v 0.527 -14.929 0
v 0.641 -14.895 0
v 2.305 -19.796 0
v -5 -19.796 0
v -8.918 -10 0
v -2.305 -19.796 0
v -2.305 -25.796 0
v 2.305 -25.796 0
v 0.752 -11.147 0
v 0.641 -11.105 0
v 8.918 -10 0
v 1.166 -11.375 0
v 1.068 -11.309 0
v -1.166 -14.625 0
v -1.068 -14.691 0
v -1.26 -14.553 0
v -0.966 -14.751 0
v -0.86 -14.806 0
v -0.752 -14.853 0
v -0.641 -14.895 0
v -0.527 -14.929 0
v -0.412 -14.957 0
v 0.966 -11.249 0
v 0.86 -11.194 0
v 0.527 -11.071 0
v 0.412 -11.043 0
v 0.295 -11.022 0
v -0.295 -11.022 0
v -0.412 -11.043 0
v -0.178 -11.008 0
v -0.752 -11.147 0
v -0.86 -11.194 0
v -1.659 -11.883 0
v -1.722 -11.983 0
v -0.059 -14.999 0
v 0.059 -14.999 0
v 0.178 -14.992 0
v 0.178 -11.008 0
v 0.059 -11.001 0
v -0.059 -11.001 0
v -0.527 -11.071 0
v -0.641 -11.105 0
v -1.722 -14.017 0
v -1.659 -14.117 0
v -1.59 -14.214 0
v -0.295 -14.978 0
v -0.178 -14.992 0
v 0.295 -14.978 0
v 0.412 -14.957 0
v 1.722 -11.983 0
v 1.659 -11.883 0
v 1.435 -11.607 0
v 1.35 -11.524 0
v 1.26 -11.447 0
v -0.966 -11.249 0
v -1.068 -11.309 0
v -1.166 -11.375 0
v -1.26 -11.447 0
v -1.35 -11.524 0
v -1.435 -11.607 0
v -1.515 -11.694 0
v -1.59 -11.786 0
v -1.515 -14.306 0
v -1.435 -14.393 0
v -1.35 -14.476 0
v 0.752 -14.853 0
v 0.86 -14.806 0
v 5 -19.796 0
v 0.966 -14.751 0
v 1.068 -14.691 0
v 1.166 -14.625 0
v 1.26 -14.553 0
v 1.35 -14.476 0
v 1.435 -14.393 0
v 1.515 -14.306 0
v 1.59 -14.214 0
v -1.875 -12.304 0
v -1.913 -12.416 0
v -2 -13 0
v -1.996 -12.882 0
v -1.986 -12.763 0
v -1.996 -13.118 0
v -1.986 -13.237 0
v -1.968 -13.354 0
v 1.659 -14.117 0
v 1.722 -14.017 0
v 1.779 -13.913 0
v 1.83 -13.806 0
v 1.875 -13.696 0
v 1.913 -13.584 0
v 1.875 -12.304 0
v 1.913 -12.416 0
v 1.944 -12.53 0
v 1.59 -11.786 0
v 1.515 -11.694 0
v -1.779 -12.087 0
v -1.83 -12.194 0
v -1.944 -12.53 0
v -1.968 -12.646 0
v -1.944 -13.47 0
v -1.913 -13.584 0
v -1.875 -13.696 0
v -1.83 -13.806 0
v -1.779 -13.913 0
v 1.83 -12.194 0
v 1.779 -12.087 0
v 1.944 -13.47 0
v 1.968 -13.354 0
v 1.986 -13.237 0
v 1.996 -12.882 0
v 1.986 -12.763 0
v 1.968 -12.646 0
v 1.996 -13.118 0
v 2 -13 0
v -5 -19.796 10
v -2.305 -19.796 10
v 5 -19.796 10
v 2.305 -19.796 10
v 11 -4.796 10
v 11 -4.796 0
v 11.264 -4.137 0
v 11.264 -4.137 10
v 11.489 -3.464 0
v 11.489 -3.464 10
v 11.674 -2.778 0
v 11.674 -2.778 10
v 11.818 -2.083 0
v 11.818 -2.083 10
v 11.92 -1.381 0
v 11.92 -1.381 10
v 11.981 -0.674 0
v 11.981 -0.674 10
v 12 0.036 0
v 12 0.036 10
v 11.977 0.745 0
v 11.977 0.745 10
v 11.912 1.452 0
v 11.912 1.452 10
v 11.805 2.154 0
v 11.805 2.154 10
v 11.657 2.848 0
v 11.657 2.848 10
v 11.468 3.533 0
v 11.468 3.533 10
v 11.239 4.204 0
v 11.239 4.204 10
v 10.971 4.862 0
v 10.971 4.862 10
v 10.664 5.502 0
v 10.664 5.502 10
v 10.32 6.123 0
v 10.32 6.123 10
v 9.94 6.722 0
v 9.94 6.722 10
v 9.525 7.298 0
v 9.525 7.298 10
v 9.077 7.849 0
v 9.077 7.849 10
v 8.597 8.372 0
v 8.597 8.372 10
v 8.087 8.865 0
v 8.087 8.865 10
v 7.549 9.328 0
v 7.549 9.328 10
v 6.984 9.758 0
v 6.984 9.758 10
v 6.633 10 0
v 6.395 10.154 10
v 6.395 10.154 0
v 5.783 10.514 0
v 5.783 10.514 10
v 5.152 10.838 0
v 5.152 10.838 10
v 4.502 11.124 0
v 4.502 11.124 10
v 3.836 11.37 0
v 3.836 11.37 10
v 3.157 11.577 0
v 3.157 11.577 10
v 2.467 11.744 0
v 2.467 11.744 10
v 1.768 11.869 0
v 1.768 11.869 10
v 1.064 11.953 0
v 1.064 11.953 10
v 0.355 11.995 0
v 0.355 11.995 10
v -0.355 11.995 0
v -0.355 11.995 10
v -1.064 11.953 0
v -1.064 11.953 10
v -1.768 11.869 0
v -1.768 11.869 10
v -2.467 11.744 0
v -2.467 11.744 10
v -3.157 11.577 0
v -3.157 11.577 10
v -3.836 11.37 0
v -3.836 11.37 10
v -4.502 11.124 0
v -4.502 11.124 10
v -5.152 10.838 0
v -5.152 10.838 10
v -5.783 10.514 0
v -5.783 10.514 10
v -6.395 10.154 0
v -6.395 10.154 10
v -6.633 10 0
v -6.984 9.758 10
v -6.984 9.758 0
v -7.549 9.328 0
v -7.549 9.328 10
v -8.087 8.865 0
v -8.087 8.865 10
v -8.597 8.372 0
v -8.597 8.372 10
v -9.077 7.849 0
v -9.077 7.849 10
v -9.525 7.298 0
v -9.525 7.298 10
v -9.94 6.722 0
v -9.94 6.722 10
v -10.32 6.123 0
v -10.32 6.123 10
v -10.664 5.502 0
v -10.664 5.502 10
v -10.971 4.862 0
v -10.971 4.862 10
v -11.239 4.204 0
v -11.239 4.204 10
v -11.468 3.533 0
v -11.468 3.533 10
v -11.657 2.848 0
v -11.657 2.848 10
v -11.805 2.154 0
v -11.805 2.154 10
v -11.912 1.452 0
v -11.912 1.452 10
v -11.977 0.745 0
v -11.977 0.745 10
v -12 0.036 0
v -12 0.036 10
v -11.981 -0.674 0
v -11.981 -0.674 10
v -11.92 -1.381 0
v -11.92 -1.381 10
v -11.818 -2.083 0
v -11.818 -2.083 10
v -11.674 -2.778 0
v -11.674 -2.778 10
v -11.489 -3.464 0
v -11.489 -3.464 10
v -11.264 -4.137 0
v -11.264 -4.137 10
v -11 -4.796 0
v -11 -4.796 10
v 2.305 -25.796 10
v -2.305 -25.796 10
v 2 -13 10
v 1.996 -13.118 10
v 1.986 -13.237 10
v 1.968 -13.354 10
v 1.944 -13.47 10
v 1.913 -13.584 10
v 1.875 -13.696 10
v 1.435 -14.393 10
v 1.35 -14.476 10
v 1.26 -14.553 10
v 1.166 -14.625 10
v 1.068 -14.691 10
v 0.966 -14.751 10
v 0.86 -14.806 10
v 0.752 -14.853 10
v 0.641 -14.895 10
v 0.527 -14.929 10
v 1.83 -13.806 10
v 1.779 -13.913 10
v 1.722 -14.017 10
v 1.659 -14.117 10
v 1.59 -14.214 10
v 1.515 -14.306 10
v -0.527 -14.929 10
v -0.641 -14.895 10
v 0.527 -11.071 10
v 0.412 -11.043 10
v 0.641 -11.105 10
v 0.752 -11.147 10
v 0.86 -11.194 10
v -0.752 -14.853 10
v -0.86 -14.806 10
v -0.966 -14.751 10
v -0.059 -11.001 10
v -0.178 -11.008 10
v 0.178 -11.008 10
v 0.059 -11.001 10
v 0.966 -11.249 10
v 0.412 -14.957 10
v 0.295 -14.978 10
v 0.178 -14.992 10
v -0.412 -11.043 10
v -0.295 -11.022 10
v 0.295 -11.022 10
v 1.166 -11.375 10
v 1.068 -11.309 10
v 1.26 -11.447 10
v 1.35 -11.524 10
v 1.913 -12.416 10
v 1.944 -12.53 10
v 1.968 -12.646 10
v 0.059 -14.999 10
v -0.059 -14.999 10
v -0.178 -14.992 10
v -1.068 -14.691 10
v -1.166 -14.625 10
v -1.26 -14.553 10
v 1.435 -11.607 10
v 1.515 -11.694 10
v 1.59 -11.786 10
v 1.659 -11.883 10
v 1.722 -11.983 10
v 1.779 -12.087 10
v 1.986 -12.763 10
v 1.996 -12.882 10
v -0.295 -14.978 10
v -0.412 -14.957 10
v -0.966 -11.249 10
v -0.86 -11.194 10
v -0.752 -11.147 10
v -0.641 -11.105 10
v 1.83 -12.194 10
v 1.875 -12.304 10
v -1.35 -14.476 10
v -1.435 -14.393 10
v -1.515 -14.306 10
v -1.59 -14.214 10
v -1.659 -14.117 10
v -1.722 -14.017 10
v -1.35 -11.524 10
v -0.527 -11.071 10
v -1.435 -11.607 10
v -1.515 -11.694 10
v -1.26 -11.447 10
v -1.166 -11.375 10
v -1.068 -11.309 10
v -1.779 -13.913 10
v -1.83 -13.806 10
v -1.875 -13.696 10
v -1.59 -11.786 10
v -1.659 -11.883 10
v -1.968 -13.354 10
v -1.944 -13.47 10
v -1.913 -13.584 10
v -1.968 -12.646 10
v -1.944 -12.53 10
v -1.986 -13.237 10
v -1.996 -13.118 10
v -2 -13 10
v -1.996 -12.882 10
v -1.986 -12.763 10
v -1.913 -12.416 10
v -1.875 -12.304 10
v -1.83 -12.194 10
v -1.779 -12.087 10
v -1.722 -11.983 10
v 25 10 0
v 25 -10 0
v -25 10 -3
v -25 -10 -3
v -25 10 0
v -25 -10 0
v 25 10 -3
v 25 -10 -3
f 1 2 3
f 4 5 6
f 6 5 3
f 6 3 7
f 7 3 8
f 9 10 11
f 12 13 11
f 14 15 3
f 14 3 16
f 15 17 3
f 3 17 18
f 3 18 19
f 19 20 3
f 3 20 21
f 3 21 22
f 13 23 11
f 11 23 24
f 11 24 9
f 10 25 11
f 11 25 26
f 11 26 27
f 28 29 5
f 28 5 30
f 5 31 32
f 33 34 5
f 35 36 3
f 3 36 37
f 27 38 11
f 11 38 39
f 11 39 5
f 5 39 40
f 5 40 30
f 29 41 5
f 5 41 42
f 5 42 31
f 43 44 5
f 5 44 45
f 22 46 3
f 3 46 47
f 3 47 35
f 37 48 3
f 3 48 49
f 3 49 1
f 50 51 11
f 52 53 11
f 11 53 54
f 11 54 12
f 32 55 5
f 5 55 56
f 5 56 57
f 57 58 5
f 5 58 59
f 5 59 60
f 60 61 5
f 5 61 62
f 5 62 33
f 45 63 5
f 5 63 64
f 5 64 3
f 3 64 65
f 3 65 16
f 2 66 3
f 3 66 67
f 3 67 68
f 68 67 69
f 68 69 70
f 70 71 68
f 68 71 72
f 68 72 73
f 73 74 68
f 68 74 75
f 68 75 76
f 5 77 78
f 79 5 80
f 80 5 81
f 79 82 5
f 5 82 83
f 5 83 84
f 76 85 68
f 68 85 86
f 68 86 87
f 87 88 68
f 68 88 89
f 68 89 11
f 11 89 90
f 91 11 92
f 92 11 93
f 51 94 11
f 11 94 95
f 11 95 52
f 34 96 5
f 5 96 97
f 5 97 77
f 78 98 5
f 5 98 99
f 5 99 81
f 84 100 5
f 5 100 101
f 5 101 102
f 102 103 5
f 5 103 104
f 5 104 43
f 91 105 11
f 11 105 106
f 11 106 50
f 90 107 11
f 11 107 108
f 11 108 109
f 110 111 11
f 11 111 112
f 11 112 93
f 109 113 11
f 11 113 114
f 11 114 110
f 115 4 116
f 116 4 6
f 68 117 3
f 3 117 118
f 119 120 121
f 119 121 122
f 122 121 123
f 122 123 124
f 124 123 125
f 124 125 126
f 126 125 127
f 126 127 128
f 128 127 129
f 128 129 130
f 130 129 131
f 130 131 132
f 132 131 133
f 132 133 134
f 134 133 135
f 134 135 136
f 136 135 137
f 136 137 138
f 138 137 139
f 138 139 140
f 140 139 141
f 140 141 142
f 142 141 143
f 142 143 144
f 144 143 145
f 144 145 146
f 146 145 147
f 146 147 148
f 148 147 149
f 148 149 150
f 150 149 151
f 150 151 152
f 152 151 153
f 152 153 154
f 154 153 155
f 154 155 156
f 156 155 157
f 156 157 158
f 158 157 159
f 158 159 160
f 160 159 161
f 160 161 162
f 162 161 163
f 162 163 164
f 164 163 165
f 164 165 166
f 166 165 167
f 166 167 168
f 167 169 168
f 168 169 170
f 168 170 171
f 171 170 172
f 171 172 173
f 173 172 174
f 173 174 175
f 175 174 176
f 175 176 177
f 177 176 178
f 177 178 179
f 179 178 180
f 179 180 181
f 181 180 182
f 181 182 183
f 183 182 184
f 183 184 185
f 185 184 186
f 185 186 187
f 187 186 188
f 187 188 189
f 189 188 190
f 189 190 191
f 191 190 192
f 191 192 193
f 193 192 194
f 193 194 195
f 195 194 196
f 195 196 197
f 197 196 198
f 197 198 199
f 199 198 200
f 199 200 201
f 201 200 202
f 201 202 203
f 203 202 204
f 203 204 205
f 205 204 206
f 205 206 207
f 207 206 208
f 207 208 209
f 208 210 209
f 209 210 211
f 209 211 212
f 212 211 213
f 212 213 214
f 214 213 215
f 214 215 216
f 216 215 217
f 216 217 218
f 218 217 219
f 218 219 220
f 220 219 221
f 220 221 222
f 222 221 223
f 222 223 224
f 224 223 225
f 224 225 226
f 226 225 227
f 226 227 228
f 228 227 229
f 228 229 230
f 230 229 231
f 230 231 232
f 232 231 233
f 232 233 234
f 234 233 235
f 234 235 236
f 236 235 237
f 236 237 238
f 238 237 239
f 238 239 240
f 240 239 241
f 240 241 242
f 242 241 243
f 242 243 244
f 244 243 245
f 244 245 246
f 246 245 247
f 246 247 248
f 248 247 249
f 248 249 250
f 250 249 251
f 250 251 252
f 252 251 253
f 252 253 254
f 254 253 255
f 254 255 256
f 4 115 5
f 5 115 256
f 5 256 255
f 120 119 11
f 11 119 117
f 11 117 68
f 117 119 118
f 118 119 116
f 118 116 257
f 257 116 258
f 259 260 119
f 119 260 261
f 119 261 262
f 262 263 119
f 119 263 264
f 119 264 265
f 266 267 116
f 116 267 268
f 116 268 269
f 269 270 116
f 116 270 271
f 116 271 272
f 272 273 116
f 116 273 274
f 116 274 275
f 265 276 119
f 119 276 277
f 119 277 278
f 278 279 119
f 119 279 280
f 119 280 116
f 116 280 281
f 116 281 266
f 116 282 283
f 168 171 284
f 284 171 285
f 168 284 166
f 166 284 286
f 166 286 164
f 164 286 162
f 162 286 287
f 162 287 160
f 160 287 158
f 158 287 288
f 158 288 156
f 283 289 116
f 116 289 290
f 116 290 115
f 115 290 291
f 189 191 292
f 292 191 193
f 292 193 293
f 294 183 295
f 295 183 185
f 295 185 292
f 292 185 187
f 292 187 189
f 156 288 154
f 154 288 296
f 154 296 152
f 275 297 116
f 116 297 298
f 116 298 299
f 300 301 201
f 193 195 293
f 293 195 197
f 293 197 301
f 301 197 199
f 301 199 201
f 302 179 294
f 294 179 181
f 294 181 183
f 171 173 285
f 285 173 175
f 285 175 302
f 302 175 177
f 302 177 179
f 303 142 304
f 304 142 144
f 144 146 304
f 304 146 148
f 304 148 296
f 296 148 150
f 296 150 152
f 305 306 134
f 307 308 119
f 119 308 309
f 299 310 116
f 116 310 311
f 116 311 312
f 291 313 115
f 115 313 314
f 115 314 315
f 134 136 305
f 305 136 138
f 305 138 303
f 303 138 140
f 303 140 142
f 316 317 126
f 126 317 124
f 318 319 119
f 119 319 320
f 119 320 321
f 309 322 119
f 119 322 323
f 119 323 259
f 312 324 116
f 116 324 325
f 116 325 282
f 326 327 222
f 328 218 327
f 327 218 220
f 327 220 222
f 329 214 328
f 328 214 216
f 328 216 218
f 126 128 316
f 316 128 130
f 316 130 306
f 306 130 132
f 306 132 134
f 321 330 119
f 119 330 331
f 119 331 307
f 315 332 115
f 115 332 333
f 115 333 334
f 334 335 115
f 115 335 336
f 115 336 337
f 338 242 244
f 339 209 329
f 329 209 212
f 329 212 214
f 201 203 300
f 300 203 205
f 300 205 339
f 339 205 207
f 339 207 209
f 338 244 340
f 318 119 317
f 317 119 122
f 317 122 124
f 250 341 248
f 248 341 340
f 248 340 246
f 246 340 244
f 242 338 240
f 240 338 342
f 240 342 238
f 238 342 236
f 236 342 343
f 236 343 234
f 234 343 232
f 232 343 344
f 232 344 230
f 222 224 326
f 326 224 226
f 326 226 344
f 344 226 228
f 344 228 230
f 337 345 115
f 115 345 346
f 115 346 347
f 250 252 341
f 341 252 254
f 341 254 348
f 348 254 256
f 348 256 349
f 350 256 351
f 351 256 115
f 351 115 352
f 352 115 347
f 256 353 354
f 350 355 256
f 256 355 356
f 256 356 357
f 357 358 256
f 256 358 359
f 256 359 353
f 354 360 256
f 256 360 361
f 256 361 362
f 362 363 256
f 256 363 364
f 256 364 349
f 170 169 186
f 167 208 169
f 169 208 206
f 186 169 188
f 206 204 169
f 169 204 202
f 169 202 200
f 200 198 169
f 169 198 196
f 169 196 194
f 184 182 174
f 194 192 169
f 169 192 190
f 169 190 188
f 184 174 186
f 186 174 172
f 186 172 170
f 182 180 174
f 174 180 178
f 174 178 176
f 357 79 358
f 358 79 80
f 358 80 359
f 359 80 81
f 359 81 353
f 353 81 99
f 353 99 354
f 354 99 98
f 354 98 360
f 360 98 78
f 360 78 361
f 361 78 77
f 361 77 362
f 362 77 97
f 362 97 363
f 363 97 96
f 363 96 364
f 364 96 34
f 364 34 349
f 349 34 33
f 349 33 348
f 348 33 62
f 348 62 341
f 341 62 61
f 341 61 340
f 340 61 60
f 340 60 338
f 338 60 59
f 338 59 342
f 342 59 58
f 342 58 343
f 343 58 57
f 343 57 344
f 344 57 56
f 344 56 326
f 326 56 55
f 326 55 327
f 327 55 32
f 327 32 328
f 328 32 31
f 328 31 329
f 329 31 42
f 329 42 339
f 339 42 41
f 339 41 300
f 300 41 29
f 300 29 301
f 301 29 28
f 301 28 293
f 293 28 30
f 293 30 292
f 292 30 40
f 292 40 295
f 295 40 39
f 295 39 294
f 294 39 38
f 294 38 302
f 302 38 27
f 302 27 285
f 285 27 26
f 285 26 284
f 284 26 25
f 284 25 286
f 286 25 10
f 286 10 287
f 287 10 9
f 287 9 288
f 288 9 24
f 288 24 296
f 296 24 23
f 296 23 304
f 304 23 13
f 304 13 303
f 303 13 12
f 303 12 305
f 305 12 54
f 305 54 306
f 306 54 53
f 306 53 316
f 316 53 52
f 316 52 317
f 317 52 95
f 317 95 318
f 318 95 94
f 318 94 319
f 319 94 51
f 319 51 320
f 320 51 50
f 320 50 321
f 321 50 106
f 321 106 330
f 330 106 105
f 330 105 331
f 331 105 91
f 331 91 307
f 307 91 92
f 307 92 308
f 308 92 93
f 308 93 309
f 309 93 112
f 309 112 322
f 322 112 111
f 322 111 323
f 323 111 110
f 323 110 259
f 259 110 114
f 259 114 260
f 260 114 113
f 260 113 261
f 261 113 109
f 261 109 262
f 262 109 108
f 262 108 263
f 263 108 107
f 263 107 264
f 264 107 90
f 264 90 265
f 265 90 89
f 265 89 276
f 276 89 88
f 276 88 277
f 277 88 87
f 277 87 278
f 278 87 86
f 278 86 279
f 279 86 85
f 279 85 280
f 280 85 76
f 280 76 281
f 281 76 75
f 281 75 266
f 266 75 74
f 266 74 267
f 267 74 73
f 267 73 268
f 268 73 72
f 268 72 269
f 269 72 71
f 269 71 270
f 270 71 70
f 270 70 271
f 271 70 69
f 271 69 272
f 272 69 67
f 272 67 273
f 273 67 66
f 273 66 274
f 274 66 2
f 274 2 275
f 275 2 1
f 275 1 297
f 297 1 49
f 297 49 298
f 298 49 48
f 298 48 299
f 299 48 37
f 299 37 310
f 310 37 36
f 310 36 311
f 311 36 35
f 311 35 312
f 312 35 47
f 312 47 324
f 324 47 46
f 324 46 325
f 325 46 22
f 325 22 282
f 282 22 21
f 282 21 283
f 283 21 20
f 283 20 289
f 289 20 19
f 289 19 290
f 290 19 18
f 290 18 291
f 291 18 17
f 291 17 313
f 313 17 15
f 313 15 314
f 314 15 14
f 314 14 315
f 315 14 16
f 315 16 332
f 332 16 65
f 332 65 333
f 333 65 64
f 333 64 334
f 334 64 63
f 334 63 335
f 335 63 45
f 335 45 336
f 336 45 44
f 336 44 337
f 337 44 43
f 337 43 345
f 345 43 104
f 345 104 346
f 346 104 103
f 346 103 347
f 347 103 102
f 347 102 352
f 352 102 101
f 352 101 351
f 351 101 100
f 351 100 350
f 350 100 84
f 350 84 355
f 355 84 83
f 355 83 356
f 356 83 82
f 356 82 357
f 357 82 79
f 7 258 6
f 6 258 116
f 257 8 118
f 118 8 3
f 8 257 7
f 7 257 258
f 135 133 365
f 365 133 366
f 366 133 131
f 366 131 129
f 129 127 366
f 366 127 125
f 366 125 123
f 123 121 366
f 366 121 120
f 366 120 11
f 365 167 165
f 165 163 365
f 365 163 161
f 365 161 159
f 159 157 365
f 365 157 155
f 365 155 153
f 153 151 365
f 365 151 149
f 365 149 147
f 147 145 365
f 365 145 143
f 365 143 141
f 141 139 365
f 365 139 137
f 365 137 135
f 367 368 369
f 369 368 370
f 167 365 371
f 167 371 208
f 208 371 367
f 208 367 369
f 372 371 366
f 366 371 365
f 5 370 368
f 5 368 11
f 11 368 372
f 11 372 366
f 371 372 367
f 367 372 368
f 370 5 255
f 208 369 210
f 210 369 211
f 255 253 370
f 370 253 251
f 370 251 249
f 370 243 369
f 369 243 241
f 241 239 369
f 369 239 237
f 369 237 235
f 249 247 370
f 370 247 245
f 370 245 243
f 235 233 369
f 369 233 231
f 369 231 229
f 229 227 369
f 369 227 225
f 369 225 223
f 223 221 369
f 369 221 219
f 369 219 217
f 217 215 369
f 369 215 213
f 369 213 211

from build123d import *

# Parameters (mm, degrees)
BOSS_EXTRU_1_DEPTH      = 10
ESQUISSE2_R             = 2
ENL_V_MAT_EXTRU_1_DEPTH = 10
ESQUISSE4_W             = 4.610591942
ESQUISSE4_H             = 10
BOSS_EXTRU_3_DEPTH      = 6
ESQUISSE3_W             = 50
ESQUISSE3_H             = 20
BOSS_EXTRU_2_DEPTH      = 3


with BuildPart() as part:
    # Esquisse1 → Boss.-Extru.1 (new body)
    with BuildSketch(Plane.XY):
        with BuildLine():
            Line((-11, -4.795831523), (-5, -19.795831523))
            Line((-5, -19.795831523), (5, -19.795831523))
            Line((5, -19.795831523), (11, -4.795831523))
            ThreePointArc((11, -4.795831523), (0, 12), (-11, -4.795831523))
        make_face()
    extrude(amount=BOSS_EXTRU_1_DEPTH)

    # Esquisse2 → Enlèv. mat.-Extru.1 (cut)
    with BuildSketch(Plane(origin=(0, 0, 0), x_dir=(-1, 0, 0), z_dir=(0, 0, -1))):
        with Locations((0, -13)):
            Circle(ESQUISSE2_R)
    extrude(amount=-ENL_V_MAT_EXTRU_1_DEPTH, mode=Mode.SUBTRACT)

    # Esquisse4 → Boss.-Extru.3 (add)
    with BuildSketch(Plane(origin=(0, -19.795831523, 0), x_dir=(-1, 0, 0), z_dir=(0, -1, 0))):
        with Locations((0, -5)):
            Rectangle(ESQUISSE4_W, ESQUISSE4_H)
    extrude(amount=BOSS_EXTRU_3_DEPTH)

    # Esquisse3 → Boss.-Extru.2 (add)
    with BuildSketch(Plane(origin=(0, 0, 0), x_dir=(-1, 0, 0), z_dir=(0, 0, -1))):
        Rectangle(ESQUISSE3_W, ESQUISSE3_H)
    extrude(amount=BOSS_EXTRU_2_DEPTH)


solid = part.part
